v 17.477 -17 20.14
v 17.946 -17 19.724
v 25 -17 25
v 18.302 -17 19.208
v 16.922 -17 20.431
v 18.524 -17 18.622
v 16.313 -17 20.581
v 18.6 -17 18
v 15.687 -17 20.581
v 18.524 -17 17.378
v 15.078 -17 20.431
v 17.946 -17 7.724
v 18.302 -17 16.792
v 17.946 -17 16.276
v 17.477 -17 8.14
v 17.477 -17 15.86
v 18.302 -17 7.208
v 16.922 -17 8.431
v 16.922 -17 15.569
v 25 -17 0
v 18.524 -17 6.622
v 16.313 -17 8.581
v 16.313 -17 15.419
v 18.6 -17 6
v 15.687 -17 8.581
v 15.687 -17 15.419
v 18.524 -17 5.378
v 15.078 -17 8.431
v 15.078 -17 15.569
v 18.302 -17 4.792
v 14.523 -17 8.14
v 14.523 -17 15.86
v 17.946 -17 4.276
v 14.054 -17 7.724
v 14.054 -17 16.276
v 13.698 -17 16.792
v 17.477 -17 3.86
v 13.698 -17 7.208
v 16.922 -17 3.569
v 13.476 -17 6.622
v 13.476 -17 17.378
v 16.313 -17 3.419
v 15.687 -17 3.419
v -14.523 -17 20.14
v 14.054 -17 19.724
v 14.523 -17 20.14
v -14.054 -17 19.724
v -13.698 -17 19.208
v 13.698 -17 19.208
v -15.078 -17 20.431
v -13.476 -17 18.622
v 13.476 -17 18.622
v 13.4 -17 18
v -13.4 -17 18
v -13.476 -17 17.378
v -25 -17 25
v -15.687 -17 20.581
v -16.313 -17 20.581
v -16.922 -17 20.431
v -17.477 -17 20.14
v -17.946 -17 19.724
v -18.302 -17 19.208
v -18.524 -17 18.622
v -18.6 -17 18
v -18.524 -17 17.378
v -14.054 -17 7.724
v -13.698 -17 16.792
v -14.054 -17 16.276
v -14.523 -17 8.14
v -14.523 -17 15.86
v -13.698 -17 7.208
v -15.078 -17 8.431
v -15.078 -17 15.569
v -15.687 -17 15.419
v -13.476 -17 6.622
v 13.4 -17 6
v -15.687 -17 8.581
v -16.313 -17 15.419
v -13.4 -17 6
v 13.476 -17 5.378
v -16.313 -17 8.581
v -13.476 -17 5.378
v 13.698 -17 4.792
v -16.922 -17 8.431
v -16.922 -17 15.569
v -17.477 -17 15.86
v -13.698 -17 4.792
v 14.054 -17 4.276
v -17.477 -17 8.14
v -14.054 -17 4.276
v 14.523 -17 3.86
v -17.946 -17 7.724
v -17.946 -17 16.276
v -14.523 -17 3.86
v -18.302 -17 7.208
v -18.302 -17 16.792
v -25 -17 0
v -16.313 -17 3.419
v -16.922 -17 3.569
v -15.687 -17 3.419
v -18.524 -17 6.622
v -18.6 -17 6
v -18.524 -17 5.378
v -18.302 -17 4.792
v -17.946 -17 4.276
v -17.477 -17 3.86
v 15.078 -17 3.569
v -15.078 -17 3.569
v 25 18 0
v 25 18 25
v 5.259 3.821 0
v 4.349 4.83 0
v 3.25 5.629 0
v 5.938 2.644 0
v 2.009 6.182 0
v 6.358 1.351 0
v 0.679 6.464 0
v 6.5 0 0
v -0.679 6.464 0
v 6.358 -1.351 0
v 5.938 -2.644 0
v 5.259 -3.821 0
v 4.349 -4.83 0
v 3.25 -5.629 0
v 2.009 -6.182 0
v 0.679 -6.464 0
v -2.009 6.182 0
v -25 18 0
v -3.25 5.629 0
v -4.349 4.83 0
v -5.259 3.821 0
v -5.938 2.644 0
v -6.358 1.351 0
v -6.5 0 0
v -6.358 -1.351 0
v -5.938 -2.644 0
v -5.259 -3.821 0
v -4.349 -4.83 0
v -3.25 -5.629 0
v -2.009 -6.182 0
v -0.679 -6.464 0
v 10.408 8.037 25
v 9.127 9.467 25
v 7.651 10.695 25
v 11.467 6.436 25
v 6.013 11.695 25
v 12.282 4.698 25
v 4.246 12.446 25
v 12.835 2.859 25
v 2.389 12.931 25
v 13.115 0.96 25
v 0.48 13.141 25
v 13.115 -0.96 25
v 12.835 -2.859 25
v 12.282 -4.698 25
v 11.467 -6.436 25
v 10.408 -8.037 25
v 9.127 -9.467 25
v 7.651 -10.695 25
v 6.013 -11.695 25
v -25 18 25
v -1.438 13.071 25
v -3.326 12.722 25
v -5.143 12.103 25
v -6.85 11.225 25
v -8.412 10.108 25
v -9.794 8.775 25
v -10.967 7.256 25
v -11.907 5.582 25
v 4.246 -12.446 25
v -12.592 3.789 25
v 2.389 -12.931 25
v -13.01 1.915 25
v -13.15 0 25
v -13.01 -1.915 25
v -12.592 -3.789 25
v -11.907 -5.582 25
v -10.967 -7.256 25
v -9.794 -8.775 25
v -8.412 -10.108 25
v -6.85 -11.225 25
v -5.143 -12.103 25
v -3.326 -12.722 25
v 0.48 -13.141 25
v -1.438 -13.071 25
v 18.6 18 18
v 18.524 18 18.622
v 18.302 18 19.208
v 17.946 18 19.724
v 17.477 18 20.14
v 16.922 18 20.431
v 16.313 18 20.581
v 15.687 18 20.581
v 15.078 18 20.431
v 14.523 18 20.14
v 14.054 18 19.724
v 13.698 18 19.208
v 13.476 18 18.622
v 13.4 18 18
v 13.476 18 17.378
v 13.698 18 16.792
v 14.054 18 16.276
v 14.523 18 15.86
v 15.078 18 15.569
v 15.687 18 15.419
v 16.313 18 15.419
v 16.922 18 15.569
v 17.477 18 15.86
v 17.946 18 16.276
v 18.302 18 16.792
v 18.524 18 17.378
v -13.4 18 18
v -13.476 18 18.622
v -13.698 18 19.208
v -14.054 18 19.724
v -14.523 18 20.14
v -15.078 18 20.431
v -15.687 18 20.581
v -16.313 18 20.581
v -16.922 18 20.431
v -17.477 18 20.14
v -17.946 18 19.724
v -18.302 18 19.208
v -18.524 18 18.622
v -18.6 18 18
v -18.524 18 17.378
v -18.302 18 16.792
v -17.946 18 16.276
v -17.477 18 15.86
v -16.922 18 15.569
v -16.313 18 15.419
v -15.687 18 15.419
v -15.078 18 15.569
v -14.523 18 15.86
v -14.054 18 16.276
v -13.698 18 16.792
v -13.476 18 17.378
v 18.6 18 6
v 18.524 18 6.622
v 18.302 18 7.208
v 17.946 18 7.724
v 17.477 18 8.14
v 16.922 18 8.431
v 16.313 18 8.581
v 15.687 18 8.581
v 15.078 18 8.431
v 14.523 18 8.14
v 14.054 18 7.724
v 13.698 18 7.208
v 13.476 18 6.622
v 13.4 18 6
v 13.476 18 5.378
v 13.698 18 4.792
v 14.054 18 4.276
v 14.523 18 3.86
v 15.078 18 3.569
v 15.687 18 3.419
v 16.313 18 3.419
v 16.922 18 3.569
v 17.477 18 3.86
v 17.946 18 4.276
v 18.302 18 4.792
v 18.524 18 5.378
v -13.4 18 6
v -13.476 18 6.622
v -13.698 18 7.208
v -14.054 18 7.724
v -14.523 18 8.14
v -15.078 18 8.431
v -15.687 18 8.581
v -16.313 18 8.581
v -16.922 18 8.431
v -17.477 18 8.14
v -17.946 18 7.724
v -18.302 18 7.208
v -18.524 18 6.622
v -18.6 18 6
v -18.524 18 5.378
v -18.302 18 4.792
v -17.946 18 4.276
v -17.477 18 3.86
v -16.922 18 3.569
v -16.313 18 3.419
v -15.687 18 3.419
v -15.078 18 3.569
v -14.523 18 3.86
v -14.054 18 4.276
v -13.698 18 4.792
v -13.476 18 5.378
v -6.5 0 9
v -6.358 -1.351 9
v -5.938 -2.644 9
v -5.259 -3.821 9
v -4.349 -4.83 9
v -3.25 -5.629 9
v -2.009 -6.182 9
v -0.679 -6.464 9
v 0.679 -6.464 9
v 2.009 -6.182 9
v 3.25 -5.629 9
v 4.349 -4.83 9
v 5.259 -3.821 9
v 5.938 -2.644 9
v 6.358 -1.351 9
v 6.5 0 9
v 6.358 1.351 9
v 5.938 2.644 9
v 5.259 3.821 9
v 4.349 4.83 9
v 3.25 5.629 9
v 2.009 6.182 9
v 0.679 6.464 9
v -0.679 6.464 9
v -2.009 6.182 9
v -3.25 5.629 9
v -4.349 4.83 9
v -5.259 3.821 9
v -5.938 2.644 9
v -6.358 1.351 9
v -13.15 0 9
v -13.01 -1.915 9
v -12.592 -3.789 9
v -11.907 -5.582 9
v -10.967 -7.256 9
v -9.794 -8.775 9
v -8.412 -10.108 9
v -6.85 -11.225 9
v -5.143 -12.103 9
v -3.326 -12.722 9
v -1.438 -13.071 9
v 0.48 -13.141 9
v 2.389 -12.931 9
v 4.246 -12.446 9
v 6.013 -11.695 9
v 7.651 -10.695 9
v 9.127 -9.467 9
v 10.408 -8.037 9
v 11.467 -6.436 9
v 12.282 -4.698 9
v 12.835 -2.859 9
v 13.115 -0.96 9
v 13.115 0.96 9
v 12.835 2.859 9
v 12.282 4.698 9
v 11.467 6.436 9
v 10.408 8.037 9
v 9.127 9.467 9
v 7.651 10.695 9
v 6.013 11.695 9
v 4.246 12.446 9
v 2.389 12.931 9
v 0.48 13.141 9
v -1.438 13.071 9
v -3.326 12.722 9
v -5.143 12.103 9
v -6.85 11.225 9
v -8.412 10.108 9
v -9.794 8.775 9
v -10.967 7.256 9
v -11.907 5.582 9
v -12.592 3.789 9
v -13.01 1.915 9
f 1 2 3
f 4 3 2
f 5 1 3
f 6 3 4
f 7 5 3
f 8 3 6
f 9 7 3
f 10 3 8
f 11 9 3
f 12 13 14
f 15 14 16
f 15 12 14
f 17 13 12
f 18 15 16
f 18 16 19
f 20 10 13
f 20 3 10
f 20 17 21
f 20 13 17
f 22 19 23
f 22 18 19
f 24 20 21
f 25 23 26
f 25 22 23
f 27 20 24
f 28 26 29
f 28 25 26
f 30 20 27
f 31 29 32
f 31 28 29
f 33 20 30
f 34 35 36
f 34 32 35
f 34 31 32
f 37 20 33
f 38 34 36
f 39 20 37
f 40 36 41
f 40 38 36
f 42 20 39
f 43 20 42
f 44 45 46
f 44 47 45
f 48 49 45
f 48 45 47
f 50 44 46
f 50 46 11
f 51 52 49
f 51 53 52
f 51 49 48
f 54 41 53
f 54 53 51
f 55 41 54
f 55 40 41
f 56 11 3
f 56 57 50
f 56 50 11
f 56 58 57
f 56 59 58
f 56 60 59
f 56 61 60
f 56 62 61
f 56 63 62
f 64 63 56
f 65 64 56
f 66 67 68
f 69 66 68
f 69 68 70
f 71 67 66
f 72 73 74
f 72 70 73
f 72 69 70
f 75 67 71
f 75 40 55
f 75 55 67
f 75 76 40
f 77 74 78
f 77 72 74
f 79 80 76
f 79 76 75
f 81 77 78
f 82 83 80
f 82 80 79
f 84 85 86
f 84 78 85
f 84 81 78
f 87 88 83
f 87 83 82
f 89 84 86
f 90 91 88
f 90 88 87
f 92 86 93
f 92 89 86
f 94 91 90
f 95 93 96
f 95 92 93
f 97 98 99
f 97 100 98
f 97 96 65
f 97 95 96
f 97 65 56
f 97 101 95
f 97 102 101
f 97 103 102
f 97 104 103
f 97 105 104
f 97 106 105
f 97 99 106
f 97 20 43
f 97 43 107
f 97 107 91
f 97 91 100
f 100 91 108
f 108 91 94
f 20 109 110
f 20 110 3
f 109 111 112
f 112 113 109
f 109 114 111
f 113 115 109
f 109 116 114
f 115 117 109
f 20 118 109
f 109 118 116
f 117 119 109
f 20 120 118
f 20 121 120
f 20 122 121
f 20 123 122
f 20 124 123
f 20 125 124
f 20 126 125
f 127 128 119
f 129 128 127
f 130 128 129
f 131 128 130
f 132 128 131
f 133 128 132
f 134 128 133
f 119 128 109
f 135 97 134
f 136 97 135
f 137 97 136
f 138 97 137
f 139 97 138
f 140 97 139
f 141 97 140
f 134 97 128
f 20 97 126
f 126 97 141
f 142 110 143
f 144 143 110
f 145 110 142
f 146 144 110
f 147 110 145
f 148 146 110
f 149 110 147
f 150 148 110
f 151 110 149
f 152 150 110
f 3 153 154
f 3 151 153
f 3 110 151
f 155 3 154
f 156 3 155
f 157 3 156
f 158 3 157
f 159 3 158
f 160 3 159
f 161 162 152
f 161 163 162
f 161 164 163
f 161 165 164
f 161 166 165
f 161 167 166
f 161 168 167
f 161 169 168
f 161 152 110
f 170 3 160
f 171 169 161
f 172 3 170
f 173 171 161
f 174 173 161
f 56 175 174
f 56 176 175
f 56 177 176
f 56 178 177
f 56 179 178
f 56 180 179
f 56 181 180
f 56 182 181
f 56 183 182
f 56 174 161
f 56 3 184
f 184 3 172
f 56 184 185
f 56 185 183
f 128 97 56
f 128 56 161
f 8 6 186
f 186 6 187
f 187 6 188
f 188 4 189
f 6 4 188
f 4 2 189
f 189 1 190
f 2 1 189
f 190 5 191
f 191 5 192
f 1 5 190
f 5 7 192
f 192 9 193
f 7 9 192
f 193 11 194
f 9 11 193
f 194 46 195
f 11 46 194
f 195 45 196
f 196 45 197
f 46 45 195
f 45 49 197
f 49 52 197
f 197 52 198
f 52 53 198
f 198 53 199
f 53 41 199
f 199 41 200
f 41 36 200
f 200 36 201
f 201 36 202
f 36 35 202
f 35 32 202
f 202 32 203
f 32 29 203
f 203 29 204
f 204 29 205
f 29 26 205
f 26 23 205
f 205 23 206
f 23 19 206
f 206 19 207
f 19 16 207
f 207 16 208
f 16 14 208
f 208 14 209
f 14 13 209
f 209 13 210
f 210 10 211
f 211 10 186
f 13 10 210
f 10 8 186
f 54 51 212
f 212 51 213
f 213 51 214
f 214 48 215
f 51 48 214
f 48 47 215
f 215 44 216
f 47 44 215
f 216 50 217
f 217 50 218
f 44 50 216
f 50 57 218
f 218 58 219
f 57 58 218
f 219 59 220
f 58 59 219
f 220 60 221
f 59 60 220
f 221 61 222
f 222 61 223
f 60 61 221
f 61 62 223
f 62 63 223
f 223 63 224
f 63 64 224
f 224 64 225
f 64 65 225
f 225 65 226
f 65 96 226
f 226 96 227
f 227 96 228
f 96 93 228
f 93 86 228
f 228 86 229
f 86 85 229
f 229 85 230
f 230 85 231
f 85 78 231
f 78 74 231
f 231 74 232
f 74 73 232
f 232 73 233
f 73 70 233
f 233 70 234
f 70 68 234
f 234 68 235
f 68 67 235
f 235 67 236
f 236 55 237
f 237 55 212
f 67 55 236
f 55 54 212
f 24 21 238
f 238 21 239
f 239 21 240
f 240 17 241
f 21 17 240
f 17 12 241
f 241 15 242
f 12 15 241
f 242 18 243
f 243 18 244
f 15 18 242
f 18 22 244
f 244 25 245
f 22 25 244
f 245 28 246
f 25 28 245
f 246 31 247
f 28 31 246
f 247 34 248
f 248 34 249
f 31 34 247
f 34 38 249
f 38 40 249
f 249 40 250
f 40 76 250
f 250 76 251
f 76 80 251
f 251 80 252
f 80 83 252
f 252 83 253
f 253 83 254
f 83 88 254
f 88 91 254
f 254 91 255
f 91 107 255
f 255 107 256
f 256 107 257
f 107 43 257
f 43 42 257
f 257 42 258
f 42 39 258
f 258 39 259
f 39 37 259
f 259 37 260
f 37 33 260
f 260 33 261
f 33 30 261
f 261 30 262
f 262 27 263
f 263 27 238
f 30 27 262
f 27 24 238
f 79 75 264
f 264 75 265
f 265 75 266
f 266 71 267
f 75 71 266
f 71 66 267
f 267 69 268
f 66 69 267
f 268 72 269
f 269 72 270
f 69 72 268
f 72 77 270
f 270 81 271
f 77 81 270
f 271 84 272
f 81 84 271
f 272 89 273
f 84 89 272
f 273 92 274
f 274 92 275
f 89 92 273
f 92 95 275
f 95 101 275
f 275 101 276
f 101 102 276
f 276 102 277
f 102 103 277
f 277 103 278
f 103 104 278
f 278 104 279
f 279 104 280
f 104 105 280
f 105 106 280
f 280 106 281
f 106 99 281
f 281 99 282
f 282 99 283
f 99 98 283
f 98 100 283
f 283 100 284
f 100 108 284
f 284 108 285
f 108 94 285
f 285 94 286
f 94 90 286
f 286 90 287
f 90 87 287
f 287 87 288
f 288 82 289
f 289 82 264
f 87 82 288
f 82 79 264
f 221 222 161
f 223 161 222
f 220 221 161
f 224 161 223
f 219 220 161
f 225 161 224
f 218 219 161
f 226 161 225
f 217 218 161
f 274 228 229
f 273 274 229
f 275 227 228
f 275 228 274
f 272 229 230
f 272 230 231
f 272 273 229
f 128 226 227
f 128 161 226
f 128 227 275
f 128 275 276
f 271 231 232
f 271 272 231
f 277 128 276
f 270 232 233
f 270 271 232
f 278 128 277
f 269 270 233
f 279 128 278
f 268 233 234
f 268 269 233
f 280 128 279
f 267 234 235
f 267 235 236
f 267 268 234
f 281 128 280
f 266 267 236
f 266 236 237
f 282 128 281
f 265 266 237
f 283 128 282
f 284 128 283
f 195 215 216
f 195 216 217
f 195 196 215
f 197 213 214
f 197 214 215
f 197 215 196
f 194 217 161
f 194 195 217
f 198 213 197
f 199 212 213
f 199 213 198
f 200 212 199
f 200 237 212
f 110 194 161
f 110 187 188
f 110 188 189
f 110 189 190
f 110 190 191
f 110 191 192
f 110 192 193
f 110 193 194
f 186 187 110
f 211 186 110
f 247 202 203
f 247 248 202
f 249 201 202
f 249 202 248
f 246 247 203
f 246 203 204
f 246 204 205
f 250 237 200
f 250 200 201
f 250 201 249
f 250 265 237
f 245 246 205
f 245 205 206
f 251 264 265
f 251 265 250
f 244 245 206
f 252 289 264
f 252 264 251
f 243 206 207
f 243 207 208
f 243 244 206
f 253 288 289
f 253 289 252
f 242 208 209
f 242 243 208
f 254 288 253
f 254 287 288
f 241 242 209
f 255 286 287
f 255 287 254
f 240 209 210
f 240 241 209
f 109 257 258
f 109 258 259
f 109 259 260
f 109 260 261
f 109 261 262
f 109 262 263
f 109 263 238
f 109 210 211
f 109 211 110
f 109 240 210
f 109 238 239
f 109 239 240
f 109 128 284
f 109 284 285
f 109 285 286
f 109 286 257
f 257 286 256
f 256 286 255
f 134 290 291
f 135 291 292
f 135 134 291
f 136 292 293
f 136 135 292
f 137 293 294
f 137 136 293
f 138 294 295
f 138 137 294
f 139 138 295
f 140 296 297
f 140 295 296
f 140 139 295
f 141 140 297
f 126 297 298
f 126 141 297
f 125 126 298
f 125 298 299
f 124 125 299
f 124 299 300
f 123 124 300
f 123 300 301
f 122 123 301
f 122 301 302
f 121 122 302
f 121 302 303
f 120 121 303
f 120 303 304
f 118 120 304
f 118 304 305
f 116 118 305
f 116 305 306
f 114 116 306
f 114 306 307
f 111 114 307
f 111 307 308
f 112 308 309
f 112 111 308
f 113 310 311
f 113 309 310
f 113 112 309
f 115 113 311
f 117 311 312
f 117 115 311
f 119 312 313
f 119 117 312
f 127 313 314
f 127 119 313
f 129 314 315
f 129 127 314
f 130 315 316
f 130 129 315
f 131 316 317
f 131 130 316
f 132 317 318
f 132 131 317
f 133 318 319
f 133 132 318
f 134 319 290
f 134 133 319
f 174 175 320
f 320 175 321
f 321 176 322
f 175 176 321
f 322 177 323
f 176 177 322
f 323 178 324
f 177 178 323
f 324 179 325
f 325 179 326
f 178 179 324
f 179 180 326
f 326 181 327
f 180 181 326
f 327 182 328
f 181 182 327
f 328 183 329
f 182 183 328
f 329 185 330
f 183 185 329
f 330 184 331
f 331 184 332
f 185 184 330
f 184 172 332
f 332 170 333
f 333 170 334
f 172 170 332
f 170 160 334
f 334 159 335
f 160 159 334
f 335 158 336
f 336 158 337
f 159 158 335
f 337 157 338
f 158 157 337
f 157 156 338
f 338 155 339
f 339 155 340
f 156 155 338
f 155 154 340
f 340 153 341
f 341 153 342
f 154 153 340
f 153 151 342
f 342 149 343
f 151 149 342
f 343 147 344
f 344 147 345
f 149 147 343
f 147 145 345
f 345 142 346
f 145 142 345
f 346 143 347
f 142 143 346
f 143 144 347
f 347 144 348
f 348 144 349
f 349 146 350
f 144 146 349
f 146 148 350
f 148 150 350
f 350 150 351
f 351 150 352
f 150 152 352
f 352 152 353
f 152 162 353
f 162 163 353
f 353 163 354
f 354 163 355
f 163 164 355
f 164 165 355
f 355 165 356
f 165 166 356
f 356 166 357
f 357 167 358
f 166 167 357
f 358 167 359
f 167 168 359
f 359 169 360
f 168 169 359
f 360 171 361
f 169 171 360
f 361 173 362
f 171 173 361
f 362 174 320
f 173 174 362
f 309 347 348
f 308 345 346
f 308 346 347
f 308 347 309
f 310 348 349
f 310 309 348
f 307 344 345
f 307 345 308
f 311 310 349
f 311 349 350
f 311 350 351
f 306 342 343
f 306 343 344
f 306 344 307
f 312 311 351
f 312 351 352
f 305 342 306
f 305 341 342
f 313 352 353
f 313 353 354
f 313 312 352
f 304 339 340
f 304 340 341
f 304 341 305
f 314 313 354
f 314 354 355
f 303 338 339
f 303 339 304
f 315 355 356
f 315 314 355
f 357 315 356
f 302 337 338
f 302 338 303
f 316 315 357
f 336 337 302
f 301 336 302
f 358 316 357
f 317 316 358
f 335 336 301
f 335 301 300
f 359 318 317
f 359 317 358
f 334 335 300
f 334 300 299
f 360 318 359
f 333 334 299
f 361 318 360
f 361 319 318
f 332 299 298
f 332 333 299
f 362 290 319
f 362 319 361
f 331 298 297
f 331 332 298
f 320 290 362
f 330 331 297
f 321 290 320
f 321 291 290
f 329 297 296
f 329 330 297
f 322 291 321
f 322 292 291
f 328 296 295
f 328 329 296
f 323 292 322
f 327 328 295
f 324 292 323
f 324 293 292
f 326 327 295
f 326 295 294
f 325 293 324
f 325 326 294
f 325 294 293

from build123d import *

# Parameters (mm, degrees)
SKETCH_W        = 50
SKETCH_H        = 35
SKETCH_R        = 6.5
PAD_DEPTH       = 25
SKETCH001_R     = 13.15
POCKET_DEPTH    = 16
SKETCH002_R     = 2.6
POCKET001_DEPTH = 35.001


with BuildPart() as part:
    # Sketch → Pad (new body)
    with BuildSketch(Plane.XY):
        with Locations((0, 0.5)):
            Rectangle(SKETCH_W, SKETCH_H)
        Circle(SKETCH_R, mode=Mode.SUBTRACT)
    extrude(amount=PAD_DEPTH)

    # Sketch001 (on Face7 of Pad) → Pocket (cut)
    with BuildSketch(Plane.XY.offset(25)):
        Circle(SKETCH001_R)
    extrude(amount=-POCKET_DEPTH, mode=Mode.SUBTRACT)

    # Sketch002 (on Face1 of Pocket) → Pocket001 (cut, through all)
    with BuildSketch(Plane(origin=(0, 18, 0), x_dir=(-1, 0, 0), z_dir=(0, 1, 0))):
        with Locations((-16, 6)):
            Circle(SKETCH002_R)
        with Locations((16, 6)):
            Circle(SKETCH002_R)
        with Locations((-16, 18)):
            Circle(SKETCH002_R)
        with Locations((16, 18)):
            Circle(SKETCH002_R)
    extrude(amount=-POCKET001_DEPTH, mode=Mode.SUBTRACT)


solid = part.part
